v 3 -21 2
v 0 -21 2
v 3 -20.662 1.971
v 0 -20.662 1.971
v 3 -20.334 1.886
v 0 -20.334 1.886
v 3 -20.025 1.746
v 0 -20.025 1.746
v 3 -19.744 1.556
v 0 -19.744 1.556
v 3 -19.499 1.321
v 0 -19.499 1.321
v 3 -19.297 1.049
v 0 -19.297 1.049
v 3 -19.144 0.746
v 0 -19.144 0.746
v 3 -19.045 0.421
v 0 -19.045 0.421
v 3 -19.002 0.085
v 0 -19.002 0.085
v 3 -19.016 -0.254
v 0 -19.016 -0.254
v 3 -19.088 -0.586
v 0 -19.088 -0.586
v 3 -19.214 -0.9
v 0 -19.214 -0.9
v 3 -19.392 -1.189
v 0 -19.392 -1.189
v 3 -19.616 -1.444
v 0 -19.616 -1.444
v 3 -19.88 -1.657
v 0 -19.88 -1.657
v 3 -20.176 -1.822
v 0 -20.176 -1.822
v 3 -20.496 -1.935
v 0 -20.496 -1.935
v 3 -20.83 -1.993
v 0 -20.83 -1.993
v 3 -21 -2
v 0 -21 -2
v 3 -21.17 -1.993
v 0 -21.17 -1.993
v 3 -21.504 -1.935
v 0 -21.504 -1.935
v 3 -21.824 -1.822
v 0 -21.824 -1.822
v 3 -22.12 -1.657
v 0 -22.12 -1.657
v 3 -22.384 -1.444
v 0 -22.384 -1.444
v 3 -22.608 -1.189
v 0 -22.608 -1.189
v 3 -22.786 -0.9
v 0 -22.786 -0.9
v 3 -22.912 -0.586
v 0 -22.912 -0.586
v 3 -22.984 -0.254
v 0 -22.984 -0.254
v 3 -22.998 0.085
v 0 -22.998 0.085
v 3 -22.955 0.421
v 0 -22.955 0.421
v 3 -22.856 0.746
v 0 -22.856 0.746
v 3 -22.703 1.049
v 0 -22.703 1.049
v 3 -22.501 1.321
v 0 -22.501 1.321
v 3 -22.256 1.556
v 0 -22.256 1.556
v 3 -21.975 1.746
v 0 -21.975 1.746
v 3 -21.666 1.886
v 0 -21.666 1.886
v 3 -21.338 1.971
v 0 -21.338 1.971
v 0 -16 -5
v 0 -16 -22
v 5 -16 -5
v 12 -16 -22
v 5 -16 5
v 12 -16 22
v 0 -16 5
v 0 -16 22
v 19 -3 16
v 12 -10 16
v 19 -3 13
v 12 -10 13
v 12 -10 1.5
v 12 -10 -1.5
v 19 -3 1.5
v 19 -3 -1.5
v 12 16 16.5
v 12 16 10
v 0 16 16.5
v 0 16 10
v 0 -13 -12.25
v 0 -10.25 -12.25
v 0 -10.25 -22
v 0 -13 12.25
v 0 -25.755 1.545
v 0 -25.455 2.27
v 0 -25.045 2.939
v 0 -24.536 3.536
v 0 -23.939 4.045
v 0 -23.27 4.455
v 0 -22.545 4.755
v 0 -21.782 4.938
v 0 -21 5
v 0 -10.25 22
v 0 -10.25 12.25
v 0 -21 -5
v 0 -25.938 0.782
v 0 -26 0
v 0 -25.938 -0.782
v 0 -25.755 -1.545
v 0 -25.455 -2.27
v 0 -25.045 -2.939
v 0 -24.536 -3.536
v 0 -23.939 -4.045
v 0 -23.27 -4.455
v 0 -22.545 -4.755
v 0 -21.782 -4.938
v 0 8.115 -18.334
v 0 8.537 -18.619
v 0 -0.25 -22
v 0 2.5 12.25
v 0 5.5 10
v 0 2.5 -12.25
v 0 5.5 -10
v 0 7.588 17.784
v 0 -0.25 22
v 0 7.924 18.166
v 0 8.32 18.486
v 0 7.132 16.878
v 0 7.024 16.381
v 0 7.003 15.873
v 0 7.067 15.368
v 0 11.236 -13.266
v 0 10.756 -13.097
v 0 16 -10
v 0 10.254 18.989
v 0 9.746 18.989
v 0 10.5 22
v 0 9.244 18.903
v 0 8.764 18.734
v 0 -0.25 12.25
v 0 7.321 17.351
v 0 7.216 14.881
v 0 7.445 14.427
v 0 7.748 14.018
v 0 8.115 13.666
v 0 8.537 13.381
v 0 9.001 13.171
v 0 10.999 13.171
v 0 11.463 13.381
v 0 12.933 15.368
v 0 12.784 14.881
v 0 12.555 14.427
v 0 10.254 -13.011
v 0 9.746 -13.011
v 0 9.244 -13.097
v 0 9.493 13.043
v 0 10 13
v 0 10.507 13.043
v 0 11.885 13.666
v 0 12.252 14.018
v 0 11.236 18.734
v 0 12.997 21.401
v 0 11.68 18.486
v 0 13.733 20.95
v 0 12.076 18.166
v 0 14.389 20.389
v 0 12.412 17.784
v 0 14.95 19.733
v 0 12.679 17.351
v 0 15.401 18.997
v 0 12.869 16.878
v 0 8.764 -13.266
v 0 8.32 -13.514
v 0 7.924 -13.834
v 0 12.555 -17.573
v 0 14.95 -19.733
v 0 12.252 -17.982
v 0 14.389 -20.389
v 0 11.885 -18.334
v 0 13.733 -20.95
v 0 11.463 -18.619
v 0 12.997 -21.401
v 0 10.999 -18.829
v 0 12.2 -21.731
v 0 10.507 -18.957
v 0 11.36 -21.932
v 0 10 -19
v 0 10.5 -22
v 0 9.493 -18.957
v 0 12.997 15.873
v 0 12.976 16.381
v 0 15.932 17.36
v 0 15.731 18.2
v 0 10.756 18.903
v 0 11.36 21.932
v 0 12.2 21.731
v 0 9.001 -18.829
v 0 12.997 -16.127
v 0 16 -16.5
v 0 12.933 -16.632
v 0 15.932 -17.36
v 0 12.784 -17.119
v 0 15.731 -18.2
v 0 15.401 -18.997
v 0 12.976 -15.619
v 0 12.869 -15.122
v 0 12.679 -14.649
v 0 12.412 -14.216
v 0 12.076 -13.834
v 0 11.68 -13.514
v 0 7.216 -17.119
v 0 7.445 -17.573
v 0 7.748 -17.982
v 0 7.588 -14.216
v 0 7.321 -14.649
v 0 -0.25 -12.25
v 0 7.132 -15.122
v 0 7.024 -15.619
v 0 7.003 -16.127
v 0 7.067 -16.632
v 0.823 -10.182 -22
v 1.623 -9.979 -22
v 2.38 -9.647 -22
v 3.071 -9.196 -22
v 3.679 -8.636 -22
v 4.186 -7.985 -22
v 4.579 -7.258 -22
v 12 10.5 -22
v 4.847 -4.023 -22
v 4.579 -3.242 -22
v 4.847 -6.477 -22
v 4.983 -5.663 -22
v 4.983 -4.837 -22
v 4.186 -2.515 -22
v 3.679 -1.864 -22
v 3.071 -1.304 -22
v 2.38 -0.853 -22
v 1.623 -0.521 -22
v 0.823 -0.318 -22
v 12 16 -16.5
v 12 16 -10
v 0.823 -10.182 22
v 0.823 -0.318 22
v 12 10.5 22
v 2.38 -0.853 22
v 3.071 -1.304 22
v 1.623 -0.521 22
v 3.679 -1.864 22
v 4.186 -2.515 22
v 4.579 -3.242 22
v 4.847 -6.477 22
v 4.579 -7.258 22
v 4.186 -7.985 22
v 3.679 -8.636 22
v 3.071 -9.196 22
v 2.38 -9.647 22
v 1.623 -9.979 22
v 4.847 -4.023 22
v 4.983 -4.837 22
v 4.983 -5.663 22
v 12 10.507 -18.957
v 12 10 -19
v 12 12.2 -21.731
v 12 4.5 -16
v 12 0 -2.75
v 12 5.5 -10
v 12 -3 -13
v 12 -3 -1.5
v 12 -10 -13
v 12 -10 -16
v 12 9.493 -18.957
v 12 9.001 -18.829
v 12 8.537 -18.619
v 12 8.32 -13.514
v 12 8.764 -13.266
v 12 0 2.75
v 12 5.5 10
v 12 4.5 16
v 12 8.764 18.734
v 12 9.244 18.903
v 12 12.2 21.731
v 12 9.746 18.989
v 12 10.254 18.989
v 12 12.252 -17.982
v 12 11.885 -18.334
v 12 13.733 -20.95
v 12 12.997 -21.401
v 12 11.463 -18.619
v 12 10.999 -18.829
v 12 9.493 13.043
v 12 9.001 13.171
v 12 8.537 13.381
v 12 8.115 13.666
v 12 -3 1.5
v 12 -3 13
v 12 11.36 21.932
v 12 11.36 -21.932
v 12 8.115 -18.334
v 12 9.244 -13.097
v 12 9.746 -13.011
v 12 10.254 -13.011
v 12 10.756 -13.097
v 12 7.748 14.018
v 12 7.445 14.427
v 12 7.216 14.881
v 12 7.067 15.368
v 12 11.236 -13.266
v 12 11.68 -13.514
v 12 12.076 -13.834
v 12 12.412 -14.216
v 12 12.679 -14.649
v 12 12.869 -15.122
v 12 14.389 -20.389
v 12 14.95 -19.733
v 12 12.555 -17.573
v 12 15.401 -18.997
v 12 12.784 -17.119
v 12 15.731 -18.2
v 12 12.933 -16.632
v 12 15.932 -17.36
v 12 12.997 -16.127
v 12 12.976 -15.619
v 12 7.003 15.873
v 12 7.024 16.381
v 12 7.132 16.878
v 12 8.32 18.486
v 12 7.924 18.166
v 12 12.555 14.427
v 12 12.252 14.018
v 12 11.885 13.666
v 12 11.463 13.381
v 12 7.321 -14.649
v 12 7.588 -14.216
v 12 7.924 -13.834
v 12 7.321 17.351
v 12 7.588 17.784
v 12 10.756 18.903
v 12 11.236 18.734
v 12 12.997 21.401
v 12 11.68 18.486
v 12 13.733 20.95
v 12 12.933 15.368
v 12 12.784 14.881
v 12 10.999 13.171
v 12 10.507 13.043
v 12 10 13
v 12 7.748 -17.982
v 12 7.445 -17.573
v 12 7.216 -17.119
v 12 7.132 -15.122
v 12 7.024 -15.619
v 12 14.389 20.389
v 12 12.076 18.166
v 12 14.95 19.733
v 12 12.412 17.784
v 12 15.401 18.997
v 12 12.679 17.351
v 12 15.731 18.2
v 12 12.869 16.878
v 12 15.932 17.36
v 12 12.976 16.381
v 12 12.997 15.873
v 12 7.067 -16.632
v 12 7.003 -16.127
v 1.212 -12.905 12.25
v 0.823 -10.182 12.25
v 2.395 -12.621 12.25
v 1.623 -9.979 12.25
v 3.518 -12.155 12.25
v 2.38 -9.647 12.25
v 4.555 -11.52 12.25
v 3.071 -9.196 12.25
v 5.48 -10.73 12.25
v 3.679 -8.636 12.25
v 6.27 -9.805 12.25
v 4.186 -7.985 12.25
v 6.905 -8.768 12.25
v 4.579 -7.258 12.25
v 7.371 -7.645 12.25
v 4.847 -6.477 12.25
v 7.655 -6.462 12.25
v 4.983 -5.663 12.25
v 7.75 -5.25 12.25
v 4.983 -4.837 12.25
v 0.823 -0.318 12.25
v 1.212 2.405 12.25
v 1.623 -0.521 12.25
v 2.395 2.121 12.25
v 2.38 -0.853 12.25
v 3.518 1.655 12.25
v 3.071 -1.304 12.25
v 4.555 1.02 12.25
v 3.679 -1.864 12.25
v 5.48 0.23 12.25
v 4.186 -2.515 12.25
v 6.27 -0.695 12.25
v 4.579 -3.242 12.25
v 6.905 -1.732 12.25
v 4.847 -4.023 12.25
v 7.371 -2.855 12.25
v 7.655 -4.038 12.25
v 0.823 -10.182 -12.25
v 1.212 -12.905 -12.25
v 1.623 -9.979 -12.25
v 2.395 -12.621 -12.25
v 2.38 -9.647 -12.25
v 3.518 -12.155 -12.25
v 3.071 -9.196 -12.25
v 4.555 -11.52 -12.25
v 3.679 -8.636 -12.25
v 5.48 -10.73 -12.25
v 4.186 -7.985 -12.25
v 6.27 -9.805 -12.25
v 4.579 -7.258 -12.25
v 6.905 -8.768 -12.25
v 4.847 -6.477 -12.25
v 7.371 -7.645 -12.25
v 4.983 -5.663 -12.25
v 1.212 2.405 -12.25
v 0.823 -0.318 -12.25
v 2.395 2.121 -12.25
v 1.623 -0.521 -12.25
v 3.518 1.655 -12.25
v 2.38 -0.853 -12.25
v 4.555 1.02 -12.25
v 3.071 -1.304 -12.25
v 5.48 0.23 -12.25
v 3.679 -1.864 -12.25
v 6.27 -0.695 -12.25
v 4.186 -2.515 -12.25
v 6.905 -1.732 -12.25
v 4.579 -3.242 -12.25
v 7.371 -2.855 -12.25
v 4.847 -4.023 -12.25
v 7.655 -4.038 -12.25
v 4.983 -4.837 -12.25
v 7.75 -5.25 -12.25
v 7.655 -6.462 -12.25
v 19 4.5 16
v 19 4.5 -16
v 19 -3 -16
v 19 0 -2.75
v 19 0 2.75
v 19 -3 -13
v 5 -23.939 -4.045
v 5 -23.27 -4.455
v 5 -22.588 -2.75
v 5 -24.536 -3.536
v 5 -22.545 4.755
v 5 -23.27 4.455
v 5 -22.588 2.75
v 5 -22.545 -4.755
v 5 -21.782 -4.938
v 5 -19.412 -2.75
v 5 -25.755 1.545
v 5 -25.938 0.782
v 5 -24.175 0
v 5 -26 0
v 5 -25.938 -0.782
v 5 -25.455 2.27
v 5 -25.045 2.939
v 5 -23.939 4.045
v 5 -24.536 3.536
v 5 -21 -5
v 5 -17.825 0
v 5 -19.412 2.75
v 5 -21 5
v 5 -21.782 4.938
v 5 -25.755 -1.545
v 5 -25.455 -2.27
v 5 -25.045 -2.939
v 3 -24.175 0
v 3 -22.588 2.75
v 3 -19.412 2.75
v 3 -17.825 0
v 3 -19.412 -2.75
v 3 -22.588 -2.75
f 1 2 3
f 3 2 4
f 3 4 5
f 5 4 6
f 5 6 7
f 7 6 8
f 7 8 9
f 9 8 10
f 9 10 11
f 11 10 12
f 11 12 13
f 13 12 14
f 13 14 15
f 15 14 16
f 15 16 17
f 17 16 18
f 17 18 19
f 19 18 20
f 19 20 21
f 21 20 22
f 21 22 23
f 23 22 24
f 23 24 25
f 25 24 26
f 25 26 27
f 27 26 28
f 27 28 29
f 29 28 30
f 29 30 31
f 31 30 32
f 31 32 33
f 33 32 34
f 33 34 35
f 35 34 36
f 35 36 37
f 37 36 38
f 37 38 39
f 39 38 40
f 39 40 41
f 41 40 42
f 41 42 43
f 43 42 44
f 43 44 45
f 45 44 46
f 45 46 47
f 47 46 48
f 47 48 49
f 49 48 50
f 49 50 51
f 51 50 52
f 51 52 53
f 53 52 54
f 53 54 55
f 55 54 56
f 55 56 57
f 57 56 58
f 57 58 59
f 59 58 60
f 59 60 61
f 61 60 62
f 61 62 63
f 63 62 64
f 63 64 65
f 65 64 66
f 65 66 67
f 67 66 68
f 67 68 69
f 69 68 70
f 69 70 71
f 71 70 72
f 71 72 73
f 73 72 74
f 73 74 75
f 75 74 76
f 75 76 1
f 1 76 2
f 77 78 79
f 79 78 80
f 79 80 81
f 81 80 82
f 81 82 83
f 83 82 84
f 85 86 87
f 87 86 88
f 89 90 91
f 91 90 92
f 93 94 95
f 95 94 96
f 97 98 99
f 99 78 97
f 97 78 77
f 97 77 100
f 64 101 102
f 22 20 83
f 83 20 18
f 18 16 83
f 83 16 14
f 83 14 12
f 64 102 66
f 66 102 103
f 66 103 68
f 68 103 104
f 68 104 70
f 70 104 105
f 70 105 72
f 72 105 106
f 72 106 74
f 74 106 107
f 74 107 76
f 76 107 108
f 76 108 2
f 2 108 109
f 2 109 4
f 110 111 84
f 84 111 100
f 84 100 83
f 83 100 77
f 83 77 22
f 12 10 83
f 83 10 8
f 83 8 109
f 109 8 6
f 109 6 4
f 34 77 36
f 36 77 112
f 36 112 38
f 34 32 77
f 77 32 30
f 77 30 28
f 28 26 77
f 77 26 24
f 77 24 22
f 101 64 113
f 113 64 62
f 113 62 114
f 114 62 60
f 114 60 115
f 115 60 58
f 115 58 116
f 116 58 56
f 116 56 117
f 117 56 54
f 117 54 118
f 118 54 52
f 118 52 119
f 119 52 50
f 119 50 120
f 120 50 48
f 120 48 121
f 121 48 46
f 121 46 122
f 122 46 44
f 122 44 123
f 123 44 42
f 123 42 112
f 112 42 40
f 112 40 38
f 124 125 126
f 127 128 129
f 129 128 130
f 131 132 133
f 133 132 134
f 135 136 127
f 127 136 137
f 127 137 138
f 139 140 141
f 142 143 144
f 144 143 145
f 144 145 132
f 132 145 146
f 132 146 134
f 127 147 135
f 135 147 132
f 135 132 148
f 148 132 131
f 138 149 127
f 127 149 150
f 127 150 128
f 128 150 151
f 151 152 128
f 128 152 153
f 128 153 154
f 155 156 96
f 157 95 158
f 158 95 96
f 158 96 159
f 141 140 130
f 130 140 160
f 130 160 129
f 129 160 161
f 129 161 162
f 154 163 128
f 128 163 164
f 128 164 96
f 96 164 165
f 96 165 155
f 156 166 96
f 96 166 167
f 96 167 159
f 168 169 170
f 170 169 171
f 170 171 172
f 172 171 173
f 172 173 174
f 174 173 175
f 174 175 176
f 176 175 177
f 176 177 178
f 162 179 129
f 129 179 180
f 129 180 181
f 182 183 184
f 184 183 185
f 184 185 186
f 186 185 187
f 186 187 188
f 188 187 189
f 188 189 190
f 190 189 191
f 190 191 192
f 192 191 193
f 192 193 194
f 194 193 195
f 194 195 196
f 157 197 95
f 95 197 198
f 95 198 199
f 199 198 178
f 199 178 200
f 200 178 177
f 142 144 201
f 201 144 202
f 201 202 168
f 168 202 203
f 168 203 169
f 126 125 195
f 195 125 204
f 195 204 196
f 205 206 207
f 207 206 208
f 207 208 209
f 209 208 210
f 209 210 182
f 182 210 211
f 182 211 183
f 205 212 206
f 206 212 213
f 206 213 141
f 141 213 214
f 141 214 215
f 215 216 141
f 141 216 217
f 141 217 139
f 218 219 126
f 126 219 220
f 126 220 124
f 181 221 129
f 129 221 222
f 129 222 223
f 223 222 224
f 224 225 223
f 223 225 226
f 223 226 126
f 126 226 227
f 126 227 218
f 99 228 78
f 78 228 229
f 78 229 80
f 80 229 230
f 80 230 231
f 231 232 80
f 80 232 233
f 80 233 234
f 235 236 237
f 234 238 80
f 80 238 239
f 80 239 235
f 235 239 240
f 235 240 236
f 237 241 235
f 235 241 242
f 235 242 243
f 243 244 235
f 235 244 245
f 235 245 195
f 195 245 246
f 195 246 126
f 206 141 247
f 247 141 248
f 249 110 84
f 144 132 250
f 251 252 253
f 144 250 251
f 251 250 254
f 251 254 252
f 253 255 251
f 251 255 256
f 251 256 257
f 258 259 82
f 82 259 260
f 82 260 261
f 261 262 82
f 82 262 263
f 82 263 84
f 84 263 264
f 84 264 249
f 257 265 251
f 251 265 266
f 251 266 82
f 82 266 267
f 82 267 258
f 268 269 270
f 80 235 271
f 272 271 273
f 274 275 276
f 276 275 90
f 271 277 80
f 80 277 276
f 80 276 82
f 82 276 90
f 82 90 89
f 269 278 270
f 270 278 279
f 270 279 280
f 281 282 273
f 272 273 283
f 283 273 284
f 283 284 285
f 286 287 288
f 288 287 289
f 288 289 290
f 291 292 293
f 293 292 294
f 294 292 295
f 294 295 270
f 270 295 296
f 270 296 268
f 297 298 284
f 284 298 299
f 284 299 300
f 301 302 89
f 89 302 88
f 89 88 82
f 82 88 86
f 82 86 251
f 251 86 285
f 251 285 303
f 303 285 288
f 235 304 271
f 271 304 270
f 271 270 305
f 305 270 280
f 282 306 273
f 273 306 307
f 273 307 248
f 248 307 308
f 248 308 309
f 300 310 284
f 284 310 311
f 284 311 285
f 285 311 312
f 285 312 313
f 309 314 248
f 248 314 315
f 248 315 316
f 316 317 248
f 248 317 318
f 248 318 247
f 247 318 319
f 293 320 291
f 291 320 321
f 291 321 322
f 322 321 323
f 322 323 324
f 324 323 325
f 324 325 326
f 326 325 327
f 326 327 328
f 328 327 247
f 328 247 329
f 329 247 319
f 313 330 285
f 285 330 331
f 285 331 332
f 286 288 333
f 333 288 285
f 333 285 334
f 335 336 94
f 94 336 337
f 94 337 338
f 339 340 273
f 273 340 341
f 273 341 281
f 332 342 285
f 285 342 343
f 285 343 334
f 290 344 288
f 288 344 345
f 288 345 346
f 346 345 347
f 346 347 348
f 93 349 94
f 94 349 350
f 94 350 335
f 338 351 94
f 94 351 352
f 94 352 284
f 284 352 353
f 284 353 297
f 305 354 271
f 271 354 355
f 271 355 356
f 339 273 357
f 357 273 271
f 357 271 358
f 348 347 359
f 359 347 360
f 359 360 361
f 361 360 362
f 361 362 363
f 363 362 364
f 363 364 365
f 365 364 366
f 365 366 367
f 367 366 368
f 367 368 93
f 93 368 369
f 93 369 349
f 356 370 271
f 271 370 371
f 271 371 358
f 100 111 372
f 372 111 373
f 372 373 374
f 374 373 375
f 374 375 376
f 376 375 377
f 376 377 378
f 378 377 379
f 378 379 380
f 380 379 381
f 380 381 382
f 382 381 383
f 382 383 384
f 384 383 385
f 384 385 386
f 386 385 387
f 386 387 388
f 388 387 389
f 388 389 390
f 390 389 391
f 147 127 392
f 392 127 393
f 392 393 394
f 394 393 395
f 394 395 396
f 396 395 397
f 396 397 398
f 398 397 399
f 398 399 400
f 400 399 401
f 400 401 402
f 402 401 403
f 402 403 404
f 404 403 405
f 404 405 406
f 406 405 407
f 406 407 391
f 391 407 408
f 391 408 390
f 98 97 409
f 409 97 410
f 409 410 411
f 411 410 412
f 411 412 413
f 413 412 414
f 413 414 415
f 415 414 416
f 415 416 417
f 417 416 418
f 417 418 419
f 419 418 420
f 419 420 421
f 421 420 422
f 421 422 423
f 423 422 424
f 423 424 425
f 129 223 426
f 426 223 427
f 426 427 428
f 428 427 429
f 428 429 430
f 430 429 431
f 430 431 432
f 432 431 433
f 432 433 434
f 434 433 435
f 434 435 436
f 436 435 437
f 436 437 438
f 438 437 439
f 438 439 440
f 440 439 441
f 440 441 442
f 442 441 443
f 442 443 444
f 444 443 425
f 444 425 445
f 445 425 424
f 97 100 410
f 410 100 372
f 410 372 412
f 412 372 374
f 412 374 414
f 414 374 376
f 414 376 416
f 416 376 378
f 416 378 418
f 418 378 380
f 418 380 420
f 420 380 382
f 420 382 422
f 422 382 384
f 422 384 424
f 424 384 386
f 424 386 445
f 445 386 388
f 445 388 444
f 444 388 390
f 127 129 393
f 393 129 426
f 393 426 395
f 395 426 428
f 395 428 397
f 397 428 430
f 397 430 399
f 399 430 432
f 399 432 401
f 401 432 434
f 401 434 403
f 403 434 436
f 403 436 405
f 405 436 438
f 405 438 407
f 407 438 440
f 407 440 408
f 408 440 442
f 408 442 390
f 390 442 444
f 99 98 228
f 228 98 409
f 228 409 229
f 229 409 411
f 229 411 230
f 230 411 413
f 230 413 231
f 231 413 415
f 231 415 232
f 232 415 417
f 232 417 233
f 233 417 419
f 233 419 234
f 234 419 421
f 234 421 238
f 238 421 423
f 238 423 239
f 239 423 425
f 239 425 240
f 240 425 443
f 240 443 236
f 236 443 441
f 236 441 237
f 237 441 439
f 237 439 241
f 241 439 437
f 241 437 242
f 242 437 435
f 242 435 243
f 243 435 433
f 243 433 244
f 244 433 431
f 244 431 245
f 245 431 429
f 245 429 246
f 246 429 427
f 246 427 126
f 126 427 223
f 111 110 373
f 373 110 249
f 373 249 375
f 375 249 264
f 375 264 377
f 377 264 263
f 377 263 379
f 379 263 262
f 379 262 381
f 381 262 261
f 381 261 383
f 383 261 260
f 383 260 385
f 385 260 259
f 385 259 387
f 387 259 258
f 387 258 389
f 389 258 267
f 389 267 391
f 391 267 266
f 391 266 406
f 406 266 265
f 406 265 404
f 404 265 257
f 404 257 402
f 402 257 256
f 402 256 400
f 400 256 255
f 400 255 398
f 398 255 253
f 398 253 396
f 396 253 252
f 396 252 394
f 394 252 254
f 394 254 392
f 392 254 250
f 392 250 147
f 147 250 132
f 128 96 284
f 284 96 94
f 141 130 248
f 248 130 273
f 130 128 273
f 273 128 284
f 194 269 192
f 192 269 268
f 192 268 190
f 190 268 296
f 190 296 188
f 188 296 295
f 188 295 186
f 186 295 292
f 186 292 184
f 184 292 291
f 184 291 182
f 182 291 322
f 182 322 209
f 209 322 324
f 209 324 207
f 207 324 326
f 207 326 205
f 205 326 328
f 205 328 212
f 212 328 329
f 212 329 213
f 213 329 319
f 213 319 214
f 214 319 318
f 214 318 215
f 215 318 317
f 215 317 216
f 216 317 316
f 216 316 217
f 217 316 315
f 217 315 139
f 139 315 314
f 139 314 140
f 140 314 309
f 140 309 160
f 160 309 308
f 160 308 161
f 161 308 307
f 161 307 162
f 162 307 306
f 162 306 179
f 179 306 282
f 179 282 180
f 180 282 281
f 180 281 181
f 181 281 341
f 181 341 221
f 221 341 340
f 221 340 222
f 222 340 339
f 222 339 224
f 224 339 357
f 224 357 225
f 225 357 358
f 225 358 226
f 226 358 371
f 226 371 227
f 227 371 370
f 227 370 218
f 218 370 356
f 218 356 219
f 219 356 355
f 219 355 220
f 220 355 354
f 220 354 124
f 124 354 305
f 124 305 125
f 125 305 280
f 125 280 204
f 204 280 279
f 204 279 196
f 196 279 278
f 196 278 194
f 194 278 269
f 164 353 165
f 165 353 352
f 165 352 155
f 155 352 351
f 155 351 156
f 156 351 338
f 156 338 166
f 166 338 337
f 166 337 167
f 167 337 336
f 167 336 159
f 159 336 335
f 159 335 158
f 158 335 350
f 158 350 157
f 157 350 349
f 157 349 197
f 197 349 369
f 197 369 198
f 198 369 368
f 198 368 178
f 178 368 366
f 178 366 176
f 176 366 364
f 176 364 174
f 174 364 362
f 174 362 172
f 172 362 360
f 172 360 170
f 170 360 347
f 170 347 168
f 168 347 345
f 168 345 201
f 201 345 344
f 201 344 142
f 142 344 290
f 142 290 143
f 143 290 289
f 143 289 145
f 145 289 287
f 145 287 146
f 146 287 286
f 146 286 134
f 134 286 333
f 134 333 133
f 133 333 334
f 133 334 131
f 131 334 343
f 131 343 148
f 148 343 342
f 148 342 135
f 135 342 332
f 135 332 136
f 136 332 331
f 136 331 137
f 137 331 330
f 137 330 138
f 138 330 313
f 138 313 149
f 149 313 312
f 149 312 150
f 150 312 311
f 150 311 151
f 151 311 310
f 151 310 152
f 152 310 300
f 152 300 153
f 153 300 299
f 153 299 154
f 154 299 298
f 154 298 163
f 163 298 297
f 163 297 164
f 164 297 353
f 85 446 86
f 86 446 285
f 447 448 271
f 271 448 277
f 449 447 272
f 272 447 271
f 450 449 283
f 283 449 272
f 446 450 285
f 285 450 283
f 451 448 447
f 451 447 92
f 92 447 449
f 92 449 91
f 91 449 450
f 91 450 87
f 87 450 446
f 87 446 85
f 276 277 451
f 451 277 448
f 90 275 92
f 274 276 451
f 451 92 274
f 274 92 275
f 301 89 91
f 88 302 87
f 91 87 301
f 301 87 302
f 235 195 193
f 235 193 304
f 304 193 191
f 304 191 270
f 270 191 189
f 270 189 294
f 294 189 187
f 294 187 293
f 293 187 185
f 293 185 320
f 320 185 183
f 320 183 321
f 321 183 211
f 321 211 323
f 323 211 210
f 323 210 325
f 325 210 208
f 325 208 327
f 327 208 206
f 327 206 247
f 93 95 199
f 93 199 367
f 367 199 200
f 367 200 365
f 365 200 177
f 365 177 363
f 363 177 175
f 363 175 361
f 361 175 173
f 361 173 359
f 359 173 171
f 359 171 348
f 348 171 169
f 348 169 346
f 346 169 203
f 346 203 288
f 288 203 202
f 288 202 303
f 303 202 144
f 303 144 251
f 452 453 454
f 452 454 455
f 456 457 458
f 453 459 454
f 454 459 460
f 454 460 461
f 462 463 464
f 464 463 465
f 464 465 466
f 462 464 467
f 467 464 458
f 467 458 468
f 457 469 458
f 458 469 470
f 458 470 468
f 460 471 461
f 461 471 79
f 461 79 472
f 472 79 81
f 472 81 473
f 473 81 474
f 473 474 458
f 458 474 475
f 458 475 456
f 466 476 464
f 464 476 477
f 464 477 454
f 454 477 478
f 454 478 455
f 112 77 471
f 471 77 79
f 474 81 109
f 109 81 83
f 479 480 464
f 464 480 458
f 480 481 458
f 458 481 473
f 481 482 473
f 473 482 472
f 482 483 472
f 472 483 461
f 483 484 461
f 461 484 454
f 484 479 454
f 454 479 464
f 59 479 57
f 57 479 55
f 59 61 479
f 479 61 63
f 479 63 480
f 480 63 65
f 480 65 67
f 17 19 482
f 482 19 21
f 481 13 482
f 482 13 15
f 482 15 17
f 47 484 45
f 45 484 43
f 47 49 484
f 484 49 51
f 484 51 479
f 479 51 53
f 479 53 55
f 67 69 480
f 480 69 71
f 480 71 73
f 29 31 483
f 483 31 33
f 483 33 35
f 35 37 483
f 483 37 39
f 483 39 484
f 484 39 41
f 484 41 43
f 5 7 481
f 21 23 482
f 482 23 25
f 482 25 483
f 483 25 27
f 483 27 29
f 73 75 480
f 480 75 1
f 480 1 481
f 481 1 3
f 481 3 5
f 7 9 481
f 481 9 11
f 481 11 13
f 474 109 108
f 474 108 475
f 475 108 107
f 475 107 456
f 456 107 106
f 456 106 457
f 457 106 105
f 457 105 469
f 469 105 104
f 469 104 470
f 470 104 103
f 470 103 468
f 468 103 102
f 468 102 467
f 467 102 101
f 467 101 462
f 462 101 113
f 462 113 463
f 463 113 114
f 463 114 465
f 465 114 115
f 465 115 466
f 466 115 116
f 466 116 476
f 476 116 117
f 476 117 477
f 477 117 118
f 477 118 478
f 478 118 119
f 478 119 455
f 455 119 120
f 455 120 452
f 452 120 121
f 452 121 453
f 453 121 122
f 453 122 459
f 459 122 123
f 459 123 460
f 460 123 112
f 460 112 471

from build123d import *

# Parameters (mm, degrees)
SKETCH1_W               = 44
SKETCH1_H               = 32
BOSS_EXTRUDE1_DEPTH     = 12
SKETCH2_W               = 24.5
SKETCH2_H               = 15.5
CUT_EXTRUDE1_DEPTH      = 7.75
FILLET1_R               = 7.75
CUT_EXTRUDE2_DEPTH      = 40.661851949
CUT_EXTRUDE2_DEPTH_BACK = 40.661851949
SKETCH4_R               = 3
SKETCH4_W               = 20
SKETCH4_H               = 10.5
CUT_EXTRUDE3_DEPTH      = 30.732137495
SKETCH5_W               = 5.5
SKETCH5_H               = 3
BOSS_EXTRUDE4_DEPTH     = 7
CHAMFER1_SIZE           = 7
SKETCH6_W               = 11.5
SKETCH6_H               = 7
CUT_EXTRUDE5_DEPTH      = 30.732137495
FILLET4_R               = 5.5
SKETCH7_W               = 10
SKETCH7_H               = 10
SKETCH7_R               = 2
BOSS_EXTRUDE5_DEPTH     = 5
CUT_EXTRUDE6_START      = -2
SKETCH8_R               = 2
CUT_EXTRUDE6_DEPTH      = 2
FILLET5_R               = 5


with BuildPart() as part:
    # Sketch1 → Boss-Extrude1 (new body)
    with BuildSketch(Plane(origin=(0, 0, 0), x_dir=(0, 0, -1), z_dir=(1, 0, 0))):
        Rectangle(SKETCH1_W, SKETCH1_H)
    extrude(amount=BOSS_EXTRUDE1_DEPTH)

    # Sketch2 → Cut-Extrude1 (cut)
    with BuildSketch(Plane(origin=(0, 0, 0), x_dir=(0, 0, -1), z_dir=(1, 0, 0))):
        with Locations((0, -5.25)):
            Rectangle(SKETCH2_W, SKETCH2_H)
    extrude(amount=CUT_EXTRUDE1_DEPTH, mode=Mode.SUBTRACT)

    # Fillet1
    fillet1_edges = [part.edges().sort_by_distance(p)[0] for p in [
        (7.75, 2.5, 0),
        (7.75, -13, 0),
    ]]
    fillet(fillet1_edges, radius=FILLET1_R - 0.0001)  # a hair under: the kernel refuses the full size

    # Sketch3 → Cut-Extrude2 (cut, two sides: drawn at the far end of the back side and taken through both)
    with BuildSketch(Plane.XY.offset(-12.25).offset(-CUT_EXTRUDE2_DEPTH_BACK)):
        with BuildLine():
            ThreePointArc((0, -10.25), (3.535533906, -8.785533906), (5, -5.25))
            ThreePointArc((5, -5.25), (3.535533906, -1.714466094), (0, -0.25))
            Line((0, -0.25), (0, -10.25))
        make_face()
        with BuildLine():
            Line((0, -10.25), (0, -0.25))
            ThreePointArc((0, -0.25), (-5, -5.25), (0, -10.25))
        make_face()
    extrude(amount=CUT_EXTRUDE2_DEPTH + CUT_EXTRUDE2_DEPTH_BACK, mode=Mode.SUBTRACT)

    # Sketch4 → Cut-Extrude3 (cut, through all)
    with BuildSketch(Plane(origin=(12, 0, 0), x_dir=(0, 0, -1), z_dir=(1, 0, 0))):
        with Locations((-16, 10)):
            Circle(SKETCH4_R)
        with Locations((16, 10)):
            Circle(SKETCH4_R)
        with Locations((0, 10.75)):
            Rectangle(SKETCH4_W, SKETCH4_H)
    extrude(amount=-CUT_EXTRUDE3_DEPTH, mode=Mode.SUBTRACT)

    # Sketch5 → Boss-Extrude4 (add)
    with BuildSketch(Plane(origin=(12, 0, 0), x_dir=(0, 0, -1), z_dir=(1, 0, 0))):
        Polygon((-16, -3), (-16, 4.5), (-2.75, -3), align=None)
        Polygon((-2.75, -3), (-16, 4.5), (-2.75, 0), align=None)
        with Locations((0, -1.5)):
            Rectangle(SKETCH5_W, SKETCH5_H)
        Polygon((2.75, -3), (2.75, 0), (16, 4.5), align=None)
        Polygon((16, -3), (2.75, -3), (16, 4.5), align=None)
    extrude(amount=BOSS_EXTRUDE4_DEPTH)

    # Chamfer1
    chamfer1_edges = [part.edges().sort_by_distance(p)[0] for p in [
        (12, -3, 0),
    ]]
    chamfer(chamfer1_edges, length=CHAMFER1_SIZE - 0.0001)  # a hair under: the kernel refuses the full size

    # Sketch6 → Cut-Extrude5 (cut, through all)
    with BuildSketch(Plane(origin=(12, 0, 0), x_dir=(0, 0, -1), z_dir=(1, 0, 0))):
        with Locations((-7.25, -6.5)):
            Rectangle(SKETCH6_W, SKETCH6_H)
        with Locations((7.25, -6.5)):
            Rectangle(SKETCH6_W, SKETCH6_H)
    extrude(amount=CUT_EXTRUDE5_DEPTH, mode=Mode.SUBTRACT)

    # Fillet4
    fillet4_edges = [part.edges().sort_by_distance(p)[0] for p in [
        (6, 16, 22),
        (6, 16, -22),
    ]]
    fillet(fillet4_edges, radius=FILLET4_R)

    # Sketch7 → Boss-Extrude5 (add)
    with BuildSketch(Plane(origin=(0, 0, 0), x_dir=(0, 0, -1), z_dir=(1, 0, 0))):
        with Locations((0, -21)):
            Rectangle(SKETCH7_W, SKETCH7_H)
        with Locations((0, -21)):
            Circle(SKETCH7_R, mode=Mode.SUBTRACT)
    extrude(amount=BOSS_EXTRUDE5_DEPTH)

    # Sketch8 → Cut-Extrude6 (cut)
    with BuildSketch(Plane(origin=(5, 0, 0), x_dir=(0, 0, -1), z_dir=(1, 0, 0)).offset(CUT_EXTRUDE6_START)):
        Polygon((0, -24.175426481), (2.75, -22.58771324), (2.75, -19.41228676), (0, -17.824573519), (-2.75, -19.41228676), (-2.75, -22.58771324), align=None)
        with Locations((0, -21)):
            Circle(SKETCH8_R, mode=Mode.SUBTRACT)
    extrude(amount=CUT_EXTRUDE6_DEPTH, mode=Mode.SUBTRACT)

    # Fillet5
    fillet5_edges = [part.edges().sort_by_distance(p)[0] for p in [
        (2.5, -26, -5),
        (2.5, -26, 5),
    ]]
    fillet(fillet5_edges, radius=FILLET5_R - 0.0001)  # a hair under: the kernel refuses the full size


solid = part.part
